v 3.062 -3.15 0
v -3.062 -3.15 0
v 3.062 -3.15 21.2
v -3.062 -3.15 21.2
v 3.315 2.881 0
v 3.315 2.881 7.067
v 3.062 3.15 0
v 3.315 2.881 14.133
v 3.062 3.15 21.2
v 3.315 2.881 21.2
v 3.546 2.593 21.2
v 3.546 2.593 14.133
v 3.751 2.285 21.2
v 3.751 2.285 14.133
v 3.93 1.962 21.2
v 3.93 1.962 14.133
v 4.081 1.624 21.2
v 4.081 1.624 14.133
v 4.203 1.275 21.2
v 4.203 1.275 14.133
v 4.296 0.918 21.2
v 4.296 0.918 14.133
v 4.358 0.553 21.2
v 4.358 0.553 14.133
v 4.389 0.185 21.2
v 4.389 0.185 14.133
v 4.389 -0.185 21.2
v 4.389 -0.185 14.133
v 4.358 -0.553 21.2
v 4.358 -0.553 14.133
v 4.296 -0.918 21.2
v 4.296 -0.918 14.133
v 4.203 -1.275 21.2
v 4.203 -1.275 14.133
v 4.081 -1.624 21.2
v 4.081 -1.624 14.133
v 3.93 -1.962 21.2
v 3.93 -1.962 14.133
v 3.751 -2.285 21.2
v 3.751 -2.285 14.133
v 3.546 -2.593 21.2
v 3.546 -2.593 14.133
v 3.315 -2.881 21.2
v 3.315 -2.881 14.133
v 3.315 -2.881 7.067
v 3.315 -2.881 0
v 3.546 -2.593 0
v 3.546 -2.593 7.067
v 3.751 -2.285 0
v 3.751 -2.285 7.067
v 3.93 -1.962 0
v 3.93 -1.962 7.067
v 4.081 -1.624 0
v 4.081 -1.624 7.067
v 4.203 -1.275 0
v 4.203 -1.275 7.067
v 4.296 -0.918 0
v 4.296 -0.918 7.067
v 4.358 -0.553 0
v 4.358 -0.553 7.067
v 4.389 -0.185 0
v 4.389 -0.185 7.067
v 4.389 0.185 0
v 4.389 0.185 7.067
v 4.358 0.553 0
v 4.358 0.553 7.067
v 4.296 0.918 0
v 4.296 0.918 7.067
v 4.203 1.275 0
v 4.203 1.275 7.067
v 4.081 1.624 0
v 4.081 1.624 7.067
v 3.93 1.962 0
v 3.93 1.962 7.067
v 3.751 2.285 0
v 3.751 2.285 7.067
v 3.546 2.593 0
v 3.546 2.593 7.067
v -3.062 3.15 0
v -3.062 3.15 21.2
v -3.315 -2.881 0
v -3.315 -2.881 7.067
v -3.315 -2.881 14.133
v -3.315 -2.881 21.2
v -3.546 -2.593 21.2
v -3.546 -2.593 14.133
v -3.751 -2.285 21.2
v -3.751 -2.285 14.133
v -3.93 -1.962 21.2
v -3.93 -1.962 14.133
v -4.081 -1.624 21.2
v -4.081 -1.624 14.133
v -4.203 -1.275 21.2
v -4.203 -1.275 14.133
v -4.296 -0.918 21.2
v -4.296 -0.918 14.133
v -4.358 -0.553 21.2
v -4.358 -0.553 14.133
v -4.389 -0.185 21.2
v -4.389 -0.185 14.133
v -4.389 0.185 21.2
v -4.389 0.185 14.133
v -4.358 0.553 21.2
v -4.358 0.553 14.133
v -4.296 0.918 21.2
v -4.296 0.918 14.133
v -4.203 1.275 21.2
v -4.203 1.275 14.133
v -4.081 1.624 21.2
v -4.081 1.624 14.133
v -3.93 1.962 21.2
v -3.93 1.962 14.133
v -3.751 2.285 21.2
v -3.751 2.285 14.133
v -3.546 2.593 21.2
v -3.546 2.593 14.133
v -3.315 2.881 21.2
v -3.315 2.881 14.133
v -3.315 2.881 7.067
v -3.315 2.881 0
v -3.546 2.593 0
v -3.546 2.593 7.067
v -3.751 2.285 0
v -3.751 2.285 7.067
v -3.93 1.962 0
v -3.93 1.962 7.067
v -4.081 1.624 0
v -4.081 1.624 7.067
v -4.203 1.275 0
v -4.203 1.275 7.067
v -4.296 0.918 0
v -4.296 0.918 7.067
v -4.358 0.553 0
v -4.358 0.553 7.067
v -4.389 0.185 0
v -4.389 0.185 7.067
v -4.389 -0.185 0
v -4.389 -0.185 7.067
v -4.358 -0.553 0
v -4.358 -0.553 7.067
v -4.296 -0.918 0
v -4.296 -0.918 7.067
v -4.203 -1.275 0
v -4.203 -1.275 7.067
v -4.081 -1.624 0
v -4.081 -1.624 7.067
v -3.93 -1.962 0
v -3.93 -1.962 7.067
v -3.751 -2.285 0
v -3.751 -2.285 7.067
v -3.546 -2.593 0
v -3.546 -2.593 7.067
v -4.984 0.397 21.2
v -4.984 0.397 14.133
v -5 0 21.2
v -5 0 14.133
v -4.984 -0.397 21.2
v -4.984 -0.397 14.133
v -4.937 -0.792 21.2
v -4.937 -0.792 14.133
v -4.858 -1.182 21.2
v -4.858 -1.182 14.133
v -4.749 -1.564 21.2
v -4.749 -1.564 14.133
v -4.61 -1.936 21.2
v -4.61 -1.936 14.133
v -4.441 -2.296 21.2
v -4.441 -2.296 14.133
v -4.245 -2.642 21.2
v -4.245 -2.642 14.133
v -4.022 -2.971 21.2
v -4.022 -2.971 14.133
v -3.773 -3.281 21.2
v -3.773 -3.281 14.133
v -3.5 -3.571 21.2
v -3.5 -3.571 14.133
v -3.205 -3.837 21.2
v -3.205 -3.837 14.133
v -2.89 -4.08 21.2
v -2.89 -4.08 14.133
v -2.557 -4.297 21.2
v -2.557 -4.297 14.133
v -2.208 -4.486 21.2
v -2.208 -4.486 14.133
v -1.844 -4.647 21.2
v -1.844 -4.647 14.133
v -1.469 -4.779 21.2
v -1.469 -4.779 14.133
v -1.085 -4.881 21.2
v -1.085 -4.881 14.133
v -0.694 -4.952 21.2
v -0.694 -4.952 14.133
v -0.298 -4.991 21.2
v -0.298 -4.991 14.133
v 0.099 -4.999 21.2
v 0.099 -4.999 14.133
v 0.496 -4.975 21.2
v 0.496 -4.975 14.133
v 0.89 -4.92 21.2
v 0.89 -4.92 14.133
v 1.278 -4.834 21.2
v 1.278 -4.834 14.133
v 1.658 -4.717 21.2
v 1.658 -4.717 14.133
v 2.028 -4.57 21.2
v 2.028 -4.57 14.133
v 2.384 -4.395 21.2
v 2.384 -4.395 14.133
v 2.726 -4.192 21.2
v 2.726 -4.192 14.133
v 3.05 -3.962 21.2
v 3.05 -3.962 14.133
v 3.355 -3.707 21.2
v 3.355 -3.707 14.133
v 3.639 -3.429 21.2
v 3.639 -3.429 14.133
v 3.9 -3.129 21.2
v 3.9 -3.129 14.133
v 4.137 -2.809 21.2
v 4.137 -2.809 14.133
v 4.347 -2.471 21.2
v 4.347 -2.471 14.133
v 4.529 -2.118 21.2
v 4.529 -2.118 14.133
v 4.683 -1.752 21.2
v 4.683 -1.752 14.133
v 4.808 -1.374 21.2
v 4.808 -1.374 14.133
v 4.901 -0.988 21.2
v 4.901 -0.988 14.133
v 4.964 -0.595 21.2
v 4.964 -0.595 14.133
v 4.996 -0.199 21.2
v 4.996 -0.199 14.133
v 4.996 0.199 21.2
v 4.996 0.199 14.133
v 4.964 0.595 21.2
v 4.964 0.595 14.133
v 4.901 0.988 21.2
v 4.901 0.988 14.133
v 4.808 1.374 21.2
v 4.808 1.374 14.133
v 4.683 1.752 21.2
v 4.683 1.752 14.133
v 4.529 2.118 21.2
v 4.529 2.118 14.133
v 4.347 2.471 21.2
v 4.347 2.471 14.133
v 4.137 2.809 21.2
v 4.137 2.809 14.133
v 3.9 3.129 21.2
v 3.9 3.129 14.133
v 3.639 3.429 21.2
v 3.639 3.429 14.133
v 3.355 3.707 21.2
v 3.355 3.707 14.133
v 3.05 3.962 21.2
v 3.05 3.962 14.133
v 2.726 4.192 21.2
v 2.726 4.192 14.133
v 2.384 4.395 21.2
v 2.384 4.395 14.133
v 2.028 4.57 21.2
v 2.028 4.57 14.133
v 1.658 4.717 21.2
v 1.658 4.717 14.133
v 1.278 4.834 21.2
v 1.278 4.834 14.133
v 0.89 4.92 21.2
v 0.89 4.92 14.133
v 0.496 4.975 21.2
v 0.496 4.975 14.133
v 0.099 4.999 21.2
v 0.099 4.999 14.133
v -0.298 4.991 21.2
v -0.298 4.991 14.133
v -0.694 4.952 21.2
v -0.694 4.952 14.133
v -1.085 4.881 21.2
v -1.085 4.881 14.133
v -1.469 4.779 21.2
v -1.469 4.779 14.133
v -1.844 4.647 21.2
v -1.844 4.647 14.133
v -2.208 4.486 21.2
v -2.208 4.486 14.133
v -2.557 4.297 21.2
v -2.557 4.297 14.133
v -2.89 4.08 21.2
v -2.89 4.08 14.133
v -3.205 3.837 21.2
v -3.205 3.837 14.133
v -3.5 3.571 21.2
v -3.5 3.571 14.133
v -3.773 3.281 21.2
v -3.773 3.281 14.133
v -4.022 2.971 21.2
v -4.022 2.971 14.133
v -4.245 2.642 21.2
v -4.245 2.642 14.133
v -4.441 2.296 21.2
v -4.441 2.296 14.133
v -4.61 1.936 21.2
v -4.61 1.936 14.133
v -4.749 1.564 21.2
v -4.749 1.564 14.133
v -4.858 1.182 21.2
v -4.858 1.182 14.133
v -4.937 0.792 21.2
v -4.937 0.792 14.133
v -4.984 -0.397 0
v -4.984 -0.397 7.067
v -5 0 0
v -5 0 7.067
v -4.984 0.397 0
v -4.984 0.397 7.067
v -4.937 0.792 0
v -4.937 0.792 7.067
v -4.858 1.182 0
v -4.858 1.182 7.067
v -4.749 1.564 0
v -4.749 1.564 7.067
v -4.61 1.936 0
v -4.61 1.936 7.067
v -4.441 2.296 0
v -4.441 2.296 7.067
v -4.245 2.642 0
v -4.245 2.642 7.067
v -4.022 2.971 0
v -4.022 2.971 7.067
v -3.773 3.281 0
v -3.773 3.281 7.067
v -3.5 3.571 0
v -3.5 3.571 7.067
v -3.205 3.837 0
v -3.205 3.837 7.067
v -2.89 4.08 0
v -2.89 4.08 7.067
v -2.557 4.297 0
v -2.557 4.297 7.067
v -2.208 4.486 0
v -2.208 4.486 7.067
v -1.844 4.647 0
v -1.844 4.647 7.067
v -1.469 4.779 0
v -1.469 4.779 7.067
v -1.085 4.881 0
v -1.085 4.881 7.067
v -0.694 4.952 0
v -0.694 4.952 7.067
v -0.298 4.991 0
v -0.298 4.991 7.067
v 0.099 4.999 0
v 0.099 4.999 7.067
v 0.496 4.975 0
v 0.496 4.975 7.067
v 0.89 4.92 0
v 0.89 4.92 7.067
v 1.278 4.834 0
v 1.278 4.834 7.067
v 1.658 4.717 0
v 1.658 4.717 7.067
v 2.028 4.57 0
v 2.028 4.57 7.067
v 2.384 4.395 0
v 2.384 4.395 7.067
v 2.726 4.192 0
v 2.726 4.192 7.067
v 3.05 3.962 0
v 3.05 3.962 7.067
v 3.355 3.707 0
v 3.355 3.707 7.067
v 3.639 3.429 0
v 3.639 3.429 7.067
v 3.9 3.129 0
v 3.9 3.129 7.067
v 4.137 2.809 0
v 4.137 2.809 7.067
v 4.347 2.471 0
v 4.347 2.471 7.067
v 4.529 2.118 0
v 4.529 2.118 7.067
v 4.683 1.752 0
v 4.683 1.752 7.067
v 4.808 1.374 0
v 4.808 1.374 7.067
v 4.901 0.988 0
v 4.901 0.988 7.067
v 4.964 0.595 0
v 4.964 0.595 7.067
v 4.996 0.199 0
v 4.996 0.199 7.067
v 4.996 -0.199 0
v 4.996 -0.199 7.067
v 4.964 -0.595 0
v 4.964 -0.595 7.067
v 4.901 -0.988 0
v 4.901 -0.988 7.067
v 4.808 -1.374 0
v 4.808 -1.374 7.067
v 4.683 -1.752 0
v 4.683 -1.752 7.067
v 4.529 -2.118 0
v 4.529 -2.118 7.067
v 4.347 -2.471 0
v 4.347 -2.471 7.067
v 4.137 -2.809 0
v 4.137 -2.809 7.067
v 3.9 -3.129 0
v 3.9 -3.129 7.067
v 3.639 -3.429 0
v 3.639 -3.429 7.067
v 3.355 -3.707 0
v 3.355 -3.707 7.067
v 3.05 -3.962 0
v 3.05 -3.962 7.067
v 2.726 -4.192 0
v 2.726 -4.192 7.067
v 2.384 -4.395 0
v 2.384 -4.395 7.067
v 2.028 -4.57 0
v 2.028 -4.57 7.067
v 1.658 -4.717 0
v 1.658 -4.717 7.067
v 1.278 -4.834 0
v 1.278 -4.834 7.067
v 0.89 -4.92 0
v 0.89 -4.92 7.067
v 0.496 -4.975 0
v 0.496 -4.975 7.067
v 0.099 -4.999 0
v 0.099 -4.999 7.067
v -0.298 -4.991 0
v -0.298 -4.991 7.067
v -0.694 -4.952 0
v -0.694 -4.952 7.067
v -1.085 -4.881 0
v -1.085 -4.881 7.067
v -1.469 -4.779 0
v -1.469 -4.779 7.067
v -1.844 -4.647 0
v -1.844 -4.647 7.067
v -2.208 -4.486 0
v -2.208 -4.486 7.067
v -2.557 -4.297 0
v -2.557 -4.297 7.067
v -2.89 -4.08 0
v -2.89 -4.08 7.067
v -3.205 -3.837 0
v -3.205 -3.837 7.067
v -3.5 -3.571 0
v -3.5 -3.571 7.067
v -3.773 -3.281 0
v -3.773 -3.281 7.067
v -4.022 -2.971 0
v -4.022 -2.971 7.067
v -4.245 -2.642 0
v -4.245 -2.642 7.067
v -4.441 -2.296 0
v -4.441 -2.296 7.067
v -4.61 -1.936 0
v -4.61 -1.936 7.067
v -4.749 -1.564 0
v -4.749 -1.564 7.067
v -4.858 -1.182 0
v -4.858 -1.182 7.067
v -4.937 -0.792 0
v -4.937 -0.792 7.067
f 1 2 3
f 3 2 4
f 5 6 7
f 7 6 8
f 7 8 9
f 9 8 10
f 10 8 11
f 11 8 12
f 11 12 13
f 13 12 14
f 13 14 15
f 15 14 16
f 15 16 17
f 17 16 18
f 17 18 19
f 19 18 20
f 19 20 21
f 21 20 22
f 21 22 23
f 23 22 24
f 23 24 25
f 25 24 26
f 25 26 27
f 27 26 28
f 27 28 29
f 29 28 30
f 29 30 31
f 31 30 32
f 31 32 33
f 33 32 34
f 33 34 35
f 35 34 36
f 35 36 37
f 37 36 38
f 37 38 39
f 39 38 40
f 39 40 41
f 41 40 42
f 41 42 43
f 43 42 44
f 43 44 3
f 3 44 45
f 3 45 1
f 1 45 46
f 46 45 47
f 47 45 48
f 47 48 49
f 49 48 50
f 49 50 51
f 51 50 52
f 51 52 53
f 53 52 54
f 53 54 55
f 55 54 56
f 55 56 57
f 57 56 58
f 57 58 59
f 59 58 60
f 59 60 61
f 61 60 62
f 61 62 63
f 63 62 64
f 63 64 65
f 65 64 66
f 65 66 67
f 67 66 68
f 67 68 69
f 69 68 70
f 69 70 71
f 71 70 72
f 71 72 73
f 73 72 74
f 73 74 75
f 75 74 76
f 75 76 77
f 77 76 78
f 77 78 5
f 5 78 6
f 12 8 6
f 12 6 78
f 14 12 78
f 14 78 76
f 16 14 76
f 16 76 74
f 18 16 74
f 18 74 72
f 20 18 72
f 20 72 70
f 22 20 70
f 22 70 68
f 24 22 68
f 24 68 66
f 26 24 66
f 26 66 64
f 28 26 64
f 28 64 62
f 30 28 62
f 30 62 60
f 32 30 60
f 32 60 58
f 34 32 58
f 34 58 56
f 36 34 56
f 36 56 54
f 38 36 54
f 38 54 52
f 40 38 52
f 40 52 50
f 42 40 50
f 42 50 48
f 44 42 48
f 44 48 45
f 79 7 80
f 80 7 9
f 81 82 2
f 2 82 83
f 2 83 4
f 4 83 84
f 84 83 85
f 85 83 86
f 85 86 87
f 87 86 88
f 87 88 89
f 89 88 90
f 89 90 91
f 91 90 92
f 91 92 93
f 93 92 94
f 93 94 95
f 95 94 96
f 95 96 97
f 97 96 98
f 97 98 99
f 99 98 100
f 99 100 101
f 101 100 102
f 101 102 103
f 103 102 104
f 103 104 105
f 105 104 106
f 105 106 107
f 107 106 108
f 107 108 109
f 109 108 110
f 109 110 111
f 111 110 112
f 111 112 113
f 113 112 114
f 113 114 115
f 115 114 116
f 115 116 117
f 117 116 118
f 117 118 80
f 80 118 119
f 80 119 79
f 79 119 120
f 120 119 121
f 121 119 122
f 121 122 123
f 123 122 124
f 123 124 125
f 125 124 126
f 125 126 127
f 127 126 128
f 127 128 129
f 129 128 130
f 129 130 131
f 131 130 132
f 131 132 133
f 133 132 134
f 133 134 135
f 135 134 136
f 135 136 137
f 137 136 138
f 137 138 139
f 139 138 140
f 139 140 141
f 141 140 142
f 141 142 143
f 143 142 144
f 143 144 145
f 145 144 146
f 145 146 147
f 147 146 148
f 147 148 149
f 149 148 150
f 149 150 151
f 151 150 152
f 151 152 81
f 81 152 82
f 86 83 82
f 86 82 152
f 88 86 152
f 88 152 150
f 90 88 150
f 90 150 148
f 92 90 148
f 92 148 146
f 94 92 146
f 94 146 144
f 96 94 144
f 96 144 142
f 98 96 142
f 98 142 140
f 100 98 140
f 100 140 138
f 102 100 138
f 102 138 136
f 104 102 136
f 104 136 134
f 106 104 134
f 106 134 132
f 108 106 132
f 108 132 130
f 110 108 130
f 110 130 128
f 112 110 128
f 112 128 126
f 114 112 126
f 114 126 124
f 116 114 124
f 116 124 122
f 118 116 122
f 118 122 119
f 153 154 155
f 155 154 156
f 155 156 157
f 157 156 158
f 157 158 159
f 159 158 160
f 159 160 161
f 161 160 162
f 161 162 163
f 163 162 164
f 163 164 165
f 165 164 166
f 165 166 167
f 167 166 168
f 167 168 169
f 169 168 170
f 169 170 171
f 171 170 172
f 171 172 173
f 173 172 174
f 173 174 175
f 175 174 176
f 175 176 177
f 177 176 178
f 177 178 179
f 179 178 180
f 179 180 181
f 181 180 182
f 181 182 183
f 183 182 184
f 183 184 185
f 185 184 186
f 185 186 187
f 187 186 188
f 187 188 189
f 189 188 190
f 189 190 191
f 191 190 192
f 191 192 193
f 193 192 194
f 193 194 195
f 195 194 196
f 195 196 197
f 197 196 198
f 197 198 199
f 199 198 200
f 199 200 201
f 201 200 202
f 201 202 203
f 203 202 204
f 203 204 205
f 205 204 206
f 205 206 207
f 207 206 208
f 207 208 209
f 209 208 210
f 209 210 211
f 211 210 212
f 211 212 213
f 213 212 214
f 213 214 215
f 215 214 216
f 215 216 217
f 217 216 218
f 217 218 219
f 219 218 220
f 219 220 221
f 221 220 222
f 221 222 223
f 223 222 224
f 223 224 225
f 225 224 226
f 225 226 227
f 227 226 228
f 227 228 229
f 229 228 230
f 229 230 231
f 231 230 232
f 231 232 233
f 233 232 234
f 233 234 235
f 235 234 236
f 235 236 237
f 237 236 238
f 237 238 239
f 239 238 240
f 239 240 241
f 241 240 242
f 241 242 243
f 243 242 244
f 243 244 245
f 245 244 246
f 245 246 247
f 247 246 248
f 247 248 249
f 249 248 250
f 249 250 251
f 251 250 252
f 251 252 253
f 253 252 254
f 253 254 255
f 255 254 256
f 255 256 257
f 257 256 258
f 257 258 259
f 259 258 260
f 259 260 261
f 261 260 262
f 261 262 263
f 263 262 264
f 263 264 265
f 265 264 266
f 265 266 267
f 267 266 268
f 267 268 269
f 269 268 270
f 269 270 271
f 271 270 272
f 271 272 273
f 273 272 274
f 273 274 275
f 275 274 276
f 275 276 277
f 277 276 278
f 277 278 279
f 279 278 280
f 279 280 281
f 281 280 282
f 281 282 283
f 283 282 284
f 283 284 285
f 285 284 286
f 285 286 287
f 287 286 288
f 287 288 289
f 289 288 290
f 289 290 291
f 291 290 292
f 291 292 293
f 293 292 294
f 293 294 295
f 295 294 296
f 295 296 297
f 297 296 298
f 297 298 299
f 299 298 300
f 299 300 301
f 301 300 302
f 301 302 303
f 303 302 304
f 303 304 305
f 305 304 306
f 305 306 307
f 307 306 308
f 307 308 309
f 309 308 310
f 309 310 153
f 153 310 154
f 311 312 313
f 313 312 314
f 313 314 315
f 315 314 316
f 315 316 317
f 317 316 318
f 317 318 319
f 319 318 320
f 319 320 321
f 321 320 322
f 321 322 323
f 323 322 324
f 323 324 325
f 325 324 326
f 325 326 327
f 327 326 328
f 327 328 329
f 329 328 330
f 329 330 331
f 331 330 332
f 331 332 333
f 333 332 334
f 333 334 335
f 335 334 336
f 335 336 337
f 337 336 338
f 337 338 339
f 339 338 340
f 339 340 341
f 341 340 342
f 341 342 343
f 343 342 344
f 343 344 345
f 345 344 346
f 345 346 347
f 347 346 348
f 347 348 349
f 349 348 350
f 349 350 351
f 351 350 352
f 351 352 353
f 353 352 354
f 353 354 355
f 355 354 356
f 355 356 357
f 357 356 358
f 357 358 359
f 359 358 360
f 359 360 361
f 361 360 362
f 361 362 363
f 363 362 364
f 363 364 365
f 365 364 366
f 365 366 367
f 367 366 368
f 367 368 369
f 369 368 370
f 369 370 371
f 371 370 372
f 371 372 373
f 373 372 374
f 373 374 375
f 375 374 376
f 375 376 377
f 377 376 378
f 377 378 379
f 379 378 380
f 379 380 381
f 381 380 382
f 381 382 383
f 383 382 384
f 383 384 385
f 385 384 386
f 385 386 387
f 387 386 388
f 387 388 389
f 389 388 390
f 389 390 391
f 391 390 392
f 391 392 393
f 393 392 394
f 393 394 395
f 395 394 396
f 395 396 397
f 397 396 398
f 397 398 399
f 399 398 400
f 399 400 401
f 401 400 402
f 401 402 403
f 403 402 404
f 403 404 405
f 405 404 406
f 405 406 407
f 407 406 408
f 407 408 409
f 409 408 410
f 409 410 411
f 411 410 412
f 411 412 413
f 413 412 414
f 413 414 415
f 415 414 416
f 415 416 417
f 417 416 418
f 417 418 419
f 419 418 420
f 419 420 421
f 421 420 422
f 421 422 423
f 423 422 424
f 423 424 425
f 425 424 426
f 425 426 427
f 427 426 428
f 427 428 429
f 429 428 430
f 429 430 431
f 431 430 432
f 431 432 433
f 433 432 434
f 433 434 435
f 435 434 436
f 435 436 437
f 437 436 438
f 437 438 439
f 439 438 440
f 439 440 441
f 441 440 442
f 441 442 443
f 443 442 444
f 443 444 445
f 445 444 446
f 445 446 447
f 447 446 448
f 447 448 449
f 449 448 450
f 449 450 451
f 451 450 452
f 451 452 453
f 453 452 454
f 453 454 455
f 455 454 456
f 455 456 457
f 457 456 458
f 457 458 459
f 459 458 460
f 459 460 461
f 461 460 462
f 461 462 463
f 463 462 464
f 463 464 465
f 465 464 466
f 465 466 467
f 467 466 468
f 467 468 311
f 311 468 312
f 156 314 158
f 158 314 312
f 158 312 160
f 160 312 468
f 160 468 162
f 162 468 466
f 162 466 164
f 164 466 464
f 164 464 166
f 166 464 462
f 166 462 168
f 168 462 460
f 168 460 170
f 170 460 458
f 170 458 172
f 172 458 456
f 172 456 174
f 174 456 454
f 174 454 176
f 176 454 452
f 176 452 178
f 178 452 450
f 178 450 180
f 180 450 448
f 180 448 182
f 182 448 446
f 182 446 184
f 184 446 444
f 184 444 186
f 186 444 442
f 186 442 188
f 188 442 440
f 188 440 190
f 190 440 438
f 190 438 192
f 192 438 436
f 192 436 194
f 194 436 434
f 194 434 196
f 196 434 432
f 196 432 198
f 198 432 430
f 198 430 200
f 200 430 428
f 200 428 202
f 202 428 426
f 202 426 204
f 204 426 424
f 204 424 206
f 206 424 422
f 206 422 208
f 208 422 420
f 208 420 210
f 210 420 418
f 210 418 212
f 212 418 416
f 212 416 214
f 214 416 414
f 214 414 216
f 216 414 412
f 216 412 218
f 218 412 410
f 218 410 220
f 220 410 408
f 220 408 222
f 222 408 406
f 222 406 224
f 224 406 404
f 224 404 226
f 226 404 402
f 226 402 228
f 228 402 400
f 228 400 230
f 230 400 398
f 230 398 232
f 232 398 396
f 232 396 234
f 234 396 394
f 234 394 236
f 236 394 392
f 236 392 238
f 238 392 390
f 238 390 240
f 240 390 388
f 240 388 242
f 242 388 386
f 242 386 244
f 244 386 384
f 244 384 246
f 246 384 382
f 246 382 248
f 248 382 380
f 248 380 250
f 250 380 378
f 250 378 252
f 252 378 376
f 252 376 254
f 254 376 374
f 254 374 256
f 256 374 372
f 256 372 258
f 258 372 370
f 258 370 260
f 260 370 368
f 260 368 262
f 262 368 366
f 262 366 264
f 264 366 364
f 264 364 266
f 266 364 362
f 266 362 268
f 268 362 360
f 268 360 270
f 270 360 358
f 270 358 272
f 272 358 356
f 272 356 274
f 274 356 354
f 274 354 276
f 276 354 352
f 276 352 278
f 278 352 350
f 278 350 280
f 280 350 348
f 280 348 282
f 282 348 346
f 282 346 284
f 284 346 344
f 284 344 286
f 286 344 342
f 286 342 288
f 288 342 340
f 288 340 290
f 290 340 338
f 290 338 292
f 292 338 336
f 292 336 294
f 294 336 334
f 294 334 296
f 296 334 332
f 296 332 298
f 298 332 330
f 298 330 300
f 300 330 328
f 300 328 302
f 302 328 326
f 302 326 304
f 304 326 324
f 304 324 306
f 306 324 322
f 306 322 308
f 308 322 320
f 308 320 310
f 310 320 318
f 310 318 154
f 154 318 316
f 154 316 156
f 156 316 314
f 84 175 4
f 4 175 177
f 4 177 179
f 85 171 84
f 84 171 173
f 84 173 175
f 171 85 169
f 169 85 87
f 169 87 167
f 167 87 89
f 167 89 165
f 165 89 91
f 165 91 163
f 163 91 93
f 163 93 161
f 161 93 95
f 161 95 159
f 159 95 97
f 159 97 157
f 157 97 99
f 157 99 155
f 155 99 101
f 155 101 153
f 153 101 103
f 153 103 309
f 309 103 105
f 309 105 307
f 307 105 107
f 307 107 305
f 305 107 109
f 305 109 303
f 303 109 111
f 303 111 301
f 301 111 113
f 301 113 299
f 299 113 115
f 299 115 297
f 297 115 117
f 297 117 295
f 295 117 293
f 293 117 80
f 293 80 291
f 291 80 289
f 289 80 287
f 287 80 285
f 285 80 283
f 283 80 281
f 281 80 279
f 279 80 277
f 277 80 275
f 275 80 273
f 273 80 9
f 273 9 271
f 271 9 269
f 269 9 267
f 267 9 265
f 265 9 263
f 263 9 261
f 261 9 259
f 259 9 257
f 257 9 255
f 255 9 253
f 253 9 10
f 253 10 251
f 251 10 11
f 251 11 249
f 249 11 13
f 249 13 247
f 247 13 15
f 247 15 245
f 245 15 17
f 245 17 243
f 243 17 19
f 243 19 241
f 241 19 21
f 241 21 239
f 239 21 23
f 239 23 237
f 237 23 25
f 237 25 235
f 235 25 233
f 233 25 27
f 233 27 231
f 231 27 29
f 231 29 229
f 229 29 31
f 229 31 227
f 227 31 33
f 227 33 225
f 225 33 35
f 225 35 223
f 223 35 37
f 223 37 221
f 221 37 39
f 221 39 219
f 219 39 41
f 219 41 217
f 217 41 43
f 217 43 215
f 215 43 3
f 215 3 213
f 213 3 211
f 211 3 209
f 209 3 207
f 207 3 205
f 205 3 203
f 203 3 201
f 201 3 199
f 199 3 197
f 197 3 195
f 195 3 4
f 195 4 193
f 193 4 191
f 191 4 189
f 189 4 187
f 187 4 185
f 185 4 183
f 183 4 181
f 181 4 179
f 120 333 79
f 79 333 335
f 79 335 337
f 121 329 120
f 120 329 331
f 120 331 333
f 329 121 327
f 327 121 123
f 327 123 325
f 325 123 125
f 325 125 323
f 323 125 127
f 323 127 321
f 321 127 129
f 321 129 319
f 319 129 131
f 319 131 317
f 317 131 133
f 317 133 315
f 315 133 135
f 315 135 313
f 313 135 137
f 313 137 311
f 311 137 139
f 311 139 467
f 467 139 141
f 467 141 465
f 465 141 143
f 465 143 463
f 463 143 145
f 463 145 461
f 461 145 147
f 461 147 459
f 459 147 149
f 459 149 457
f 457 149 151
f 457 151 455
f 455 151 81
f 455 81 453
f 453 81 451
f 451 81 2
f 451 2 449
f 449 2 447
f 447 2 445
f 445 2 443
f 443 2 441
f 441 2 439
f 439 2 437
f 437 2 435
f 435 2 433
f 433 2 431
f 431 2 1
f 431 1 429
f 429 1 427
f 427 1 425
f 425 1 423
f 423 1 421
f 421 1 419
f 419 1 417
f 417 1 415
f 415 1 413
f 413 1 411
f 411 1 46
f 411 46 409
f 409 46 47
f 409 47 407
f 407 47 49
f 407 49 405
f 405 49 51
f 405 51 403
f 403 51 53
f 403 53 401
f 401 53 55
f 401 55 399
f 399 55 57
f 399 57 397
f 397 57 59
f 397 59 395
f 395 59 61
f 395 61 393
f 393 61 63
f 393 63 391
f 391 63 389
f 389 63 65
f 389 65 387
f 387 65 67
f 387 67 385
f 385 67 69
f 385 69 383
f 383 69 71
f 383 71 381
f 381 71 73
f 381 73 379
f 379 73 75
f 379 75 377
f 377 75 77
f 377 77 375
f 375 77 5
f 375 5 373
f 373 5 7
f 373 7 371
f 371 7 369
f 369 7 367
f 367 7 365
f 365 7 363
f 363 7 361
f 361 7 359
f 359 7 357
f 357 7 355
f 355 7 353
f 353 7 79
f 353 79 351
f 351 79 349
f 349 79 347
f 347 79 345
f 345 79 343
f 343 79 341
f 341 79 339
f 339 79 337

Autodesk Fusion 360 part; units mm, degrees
sketch "Spacer_Wheel_Ax_Sketch" plane through (0, 0, 0) normal (0, 0, 1) x (1, 0, 0)
  circle A0 centre (0, 0) radius 5
  arc A1 (-3, 3) -> (-3, -3) centre (0, 0) ccw
  line L0 (3, 3) -> (-3, 3)
  arc A2 (3, -3) -> (3, 3) centre (0, 0) ccw
  line L1 (-3, -3) -> (3, -3)
  line L2 (-3.0615, -3.15) -> (3.0615, -3.15)
  arc A3 (3.0615, -3.15) -> (3.0615, 3.15) centre (0, 0) ccw
  line L3 (3.0615, 3.15) -> (-3.0615, 3.15)
  arc A4 (-3.0615, 3.15) -> (-3.0615, -3.15) centre (0, 0) ccw
  dimension "d1" = 0.15
extrude "Extrude1" add sketch "Spacer_Wheel_Ax_Sketch" along normal blind 21.2 contours A0
